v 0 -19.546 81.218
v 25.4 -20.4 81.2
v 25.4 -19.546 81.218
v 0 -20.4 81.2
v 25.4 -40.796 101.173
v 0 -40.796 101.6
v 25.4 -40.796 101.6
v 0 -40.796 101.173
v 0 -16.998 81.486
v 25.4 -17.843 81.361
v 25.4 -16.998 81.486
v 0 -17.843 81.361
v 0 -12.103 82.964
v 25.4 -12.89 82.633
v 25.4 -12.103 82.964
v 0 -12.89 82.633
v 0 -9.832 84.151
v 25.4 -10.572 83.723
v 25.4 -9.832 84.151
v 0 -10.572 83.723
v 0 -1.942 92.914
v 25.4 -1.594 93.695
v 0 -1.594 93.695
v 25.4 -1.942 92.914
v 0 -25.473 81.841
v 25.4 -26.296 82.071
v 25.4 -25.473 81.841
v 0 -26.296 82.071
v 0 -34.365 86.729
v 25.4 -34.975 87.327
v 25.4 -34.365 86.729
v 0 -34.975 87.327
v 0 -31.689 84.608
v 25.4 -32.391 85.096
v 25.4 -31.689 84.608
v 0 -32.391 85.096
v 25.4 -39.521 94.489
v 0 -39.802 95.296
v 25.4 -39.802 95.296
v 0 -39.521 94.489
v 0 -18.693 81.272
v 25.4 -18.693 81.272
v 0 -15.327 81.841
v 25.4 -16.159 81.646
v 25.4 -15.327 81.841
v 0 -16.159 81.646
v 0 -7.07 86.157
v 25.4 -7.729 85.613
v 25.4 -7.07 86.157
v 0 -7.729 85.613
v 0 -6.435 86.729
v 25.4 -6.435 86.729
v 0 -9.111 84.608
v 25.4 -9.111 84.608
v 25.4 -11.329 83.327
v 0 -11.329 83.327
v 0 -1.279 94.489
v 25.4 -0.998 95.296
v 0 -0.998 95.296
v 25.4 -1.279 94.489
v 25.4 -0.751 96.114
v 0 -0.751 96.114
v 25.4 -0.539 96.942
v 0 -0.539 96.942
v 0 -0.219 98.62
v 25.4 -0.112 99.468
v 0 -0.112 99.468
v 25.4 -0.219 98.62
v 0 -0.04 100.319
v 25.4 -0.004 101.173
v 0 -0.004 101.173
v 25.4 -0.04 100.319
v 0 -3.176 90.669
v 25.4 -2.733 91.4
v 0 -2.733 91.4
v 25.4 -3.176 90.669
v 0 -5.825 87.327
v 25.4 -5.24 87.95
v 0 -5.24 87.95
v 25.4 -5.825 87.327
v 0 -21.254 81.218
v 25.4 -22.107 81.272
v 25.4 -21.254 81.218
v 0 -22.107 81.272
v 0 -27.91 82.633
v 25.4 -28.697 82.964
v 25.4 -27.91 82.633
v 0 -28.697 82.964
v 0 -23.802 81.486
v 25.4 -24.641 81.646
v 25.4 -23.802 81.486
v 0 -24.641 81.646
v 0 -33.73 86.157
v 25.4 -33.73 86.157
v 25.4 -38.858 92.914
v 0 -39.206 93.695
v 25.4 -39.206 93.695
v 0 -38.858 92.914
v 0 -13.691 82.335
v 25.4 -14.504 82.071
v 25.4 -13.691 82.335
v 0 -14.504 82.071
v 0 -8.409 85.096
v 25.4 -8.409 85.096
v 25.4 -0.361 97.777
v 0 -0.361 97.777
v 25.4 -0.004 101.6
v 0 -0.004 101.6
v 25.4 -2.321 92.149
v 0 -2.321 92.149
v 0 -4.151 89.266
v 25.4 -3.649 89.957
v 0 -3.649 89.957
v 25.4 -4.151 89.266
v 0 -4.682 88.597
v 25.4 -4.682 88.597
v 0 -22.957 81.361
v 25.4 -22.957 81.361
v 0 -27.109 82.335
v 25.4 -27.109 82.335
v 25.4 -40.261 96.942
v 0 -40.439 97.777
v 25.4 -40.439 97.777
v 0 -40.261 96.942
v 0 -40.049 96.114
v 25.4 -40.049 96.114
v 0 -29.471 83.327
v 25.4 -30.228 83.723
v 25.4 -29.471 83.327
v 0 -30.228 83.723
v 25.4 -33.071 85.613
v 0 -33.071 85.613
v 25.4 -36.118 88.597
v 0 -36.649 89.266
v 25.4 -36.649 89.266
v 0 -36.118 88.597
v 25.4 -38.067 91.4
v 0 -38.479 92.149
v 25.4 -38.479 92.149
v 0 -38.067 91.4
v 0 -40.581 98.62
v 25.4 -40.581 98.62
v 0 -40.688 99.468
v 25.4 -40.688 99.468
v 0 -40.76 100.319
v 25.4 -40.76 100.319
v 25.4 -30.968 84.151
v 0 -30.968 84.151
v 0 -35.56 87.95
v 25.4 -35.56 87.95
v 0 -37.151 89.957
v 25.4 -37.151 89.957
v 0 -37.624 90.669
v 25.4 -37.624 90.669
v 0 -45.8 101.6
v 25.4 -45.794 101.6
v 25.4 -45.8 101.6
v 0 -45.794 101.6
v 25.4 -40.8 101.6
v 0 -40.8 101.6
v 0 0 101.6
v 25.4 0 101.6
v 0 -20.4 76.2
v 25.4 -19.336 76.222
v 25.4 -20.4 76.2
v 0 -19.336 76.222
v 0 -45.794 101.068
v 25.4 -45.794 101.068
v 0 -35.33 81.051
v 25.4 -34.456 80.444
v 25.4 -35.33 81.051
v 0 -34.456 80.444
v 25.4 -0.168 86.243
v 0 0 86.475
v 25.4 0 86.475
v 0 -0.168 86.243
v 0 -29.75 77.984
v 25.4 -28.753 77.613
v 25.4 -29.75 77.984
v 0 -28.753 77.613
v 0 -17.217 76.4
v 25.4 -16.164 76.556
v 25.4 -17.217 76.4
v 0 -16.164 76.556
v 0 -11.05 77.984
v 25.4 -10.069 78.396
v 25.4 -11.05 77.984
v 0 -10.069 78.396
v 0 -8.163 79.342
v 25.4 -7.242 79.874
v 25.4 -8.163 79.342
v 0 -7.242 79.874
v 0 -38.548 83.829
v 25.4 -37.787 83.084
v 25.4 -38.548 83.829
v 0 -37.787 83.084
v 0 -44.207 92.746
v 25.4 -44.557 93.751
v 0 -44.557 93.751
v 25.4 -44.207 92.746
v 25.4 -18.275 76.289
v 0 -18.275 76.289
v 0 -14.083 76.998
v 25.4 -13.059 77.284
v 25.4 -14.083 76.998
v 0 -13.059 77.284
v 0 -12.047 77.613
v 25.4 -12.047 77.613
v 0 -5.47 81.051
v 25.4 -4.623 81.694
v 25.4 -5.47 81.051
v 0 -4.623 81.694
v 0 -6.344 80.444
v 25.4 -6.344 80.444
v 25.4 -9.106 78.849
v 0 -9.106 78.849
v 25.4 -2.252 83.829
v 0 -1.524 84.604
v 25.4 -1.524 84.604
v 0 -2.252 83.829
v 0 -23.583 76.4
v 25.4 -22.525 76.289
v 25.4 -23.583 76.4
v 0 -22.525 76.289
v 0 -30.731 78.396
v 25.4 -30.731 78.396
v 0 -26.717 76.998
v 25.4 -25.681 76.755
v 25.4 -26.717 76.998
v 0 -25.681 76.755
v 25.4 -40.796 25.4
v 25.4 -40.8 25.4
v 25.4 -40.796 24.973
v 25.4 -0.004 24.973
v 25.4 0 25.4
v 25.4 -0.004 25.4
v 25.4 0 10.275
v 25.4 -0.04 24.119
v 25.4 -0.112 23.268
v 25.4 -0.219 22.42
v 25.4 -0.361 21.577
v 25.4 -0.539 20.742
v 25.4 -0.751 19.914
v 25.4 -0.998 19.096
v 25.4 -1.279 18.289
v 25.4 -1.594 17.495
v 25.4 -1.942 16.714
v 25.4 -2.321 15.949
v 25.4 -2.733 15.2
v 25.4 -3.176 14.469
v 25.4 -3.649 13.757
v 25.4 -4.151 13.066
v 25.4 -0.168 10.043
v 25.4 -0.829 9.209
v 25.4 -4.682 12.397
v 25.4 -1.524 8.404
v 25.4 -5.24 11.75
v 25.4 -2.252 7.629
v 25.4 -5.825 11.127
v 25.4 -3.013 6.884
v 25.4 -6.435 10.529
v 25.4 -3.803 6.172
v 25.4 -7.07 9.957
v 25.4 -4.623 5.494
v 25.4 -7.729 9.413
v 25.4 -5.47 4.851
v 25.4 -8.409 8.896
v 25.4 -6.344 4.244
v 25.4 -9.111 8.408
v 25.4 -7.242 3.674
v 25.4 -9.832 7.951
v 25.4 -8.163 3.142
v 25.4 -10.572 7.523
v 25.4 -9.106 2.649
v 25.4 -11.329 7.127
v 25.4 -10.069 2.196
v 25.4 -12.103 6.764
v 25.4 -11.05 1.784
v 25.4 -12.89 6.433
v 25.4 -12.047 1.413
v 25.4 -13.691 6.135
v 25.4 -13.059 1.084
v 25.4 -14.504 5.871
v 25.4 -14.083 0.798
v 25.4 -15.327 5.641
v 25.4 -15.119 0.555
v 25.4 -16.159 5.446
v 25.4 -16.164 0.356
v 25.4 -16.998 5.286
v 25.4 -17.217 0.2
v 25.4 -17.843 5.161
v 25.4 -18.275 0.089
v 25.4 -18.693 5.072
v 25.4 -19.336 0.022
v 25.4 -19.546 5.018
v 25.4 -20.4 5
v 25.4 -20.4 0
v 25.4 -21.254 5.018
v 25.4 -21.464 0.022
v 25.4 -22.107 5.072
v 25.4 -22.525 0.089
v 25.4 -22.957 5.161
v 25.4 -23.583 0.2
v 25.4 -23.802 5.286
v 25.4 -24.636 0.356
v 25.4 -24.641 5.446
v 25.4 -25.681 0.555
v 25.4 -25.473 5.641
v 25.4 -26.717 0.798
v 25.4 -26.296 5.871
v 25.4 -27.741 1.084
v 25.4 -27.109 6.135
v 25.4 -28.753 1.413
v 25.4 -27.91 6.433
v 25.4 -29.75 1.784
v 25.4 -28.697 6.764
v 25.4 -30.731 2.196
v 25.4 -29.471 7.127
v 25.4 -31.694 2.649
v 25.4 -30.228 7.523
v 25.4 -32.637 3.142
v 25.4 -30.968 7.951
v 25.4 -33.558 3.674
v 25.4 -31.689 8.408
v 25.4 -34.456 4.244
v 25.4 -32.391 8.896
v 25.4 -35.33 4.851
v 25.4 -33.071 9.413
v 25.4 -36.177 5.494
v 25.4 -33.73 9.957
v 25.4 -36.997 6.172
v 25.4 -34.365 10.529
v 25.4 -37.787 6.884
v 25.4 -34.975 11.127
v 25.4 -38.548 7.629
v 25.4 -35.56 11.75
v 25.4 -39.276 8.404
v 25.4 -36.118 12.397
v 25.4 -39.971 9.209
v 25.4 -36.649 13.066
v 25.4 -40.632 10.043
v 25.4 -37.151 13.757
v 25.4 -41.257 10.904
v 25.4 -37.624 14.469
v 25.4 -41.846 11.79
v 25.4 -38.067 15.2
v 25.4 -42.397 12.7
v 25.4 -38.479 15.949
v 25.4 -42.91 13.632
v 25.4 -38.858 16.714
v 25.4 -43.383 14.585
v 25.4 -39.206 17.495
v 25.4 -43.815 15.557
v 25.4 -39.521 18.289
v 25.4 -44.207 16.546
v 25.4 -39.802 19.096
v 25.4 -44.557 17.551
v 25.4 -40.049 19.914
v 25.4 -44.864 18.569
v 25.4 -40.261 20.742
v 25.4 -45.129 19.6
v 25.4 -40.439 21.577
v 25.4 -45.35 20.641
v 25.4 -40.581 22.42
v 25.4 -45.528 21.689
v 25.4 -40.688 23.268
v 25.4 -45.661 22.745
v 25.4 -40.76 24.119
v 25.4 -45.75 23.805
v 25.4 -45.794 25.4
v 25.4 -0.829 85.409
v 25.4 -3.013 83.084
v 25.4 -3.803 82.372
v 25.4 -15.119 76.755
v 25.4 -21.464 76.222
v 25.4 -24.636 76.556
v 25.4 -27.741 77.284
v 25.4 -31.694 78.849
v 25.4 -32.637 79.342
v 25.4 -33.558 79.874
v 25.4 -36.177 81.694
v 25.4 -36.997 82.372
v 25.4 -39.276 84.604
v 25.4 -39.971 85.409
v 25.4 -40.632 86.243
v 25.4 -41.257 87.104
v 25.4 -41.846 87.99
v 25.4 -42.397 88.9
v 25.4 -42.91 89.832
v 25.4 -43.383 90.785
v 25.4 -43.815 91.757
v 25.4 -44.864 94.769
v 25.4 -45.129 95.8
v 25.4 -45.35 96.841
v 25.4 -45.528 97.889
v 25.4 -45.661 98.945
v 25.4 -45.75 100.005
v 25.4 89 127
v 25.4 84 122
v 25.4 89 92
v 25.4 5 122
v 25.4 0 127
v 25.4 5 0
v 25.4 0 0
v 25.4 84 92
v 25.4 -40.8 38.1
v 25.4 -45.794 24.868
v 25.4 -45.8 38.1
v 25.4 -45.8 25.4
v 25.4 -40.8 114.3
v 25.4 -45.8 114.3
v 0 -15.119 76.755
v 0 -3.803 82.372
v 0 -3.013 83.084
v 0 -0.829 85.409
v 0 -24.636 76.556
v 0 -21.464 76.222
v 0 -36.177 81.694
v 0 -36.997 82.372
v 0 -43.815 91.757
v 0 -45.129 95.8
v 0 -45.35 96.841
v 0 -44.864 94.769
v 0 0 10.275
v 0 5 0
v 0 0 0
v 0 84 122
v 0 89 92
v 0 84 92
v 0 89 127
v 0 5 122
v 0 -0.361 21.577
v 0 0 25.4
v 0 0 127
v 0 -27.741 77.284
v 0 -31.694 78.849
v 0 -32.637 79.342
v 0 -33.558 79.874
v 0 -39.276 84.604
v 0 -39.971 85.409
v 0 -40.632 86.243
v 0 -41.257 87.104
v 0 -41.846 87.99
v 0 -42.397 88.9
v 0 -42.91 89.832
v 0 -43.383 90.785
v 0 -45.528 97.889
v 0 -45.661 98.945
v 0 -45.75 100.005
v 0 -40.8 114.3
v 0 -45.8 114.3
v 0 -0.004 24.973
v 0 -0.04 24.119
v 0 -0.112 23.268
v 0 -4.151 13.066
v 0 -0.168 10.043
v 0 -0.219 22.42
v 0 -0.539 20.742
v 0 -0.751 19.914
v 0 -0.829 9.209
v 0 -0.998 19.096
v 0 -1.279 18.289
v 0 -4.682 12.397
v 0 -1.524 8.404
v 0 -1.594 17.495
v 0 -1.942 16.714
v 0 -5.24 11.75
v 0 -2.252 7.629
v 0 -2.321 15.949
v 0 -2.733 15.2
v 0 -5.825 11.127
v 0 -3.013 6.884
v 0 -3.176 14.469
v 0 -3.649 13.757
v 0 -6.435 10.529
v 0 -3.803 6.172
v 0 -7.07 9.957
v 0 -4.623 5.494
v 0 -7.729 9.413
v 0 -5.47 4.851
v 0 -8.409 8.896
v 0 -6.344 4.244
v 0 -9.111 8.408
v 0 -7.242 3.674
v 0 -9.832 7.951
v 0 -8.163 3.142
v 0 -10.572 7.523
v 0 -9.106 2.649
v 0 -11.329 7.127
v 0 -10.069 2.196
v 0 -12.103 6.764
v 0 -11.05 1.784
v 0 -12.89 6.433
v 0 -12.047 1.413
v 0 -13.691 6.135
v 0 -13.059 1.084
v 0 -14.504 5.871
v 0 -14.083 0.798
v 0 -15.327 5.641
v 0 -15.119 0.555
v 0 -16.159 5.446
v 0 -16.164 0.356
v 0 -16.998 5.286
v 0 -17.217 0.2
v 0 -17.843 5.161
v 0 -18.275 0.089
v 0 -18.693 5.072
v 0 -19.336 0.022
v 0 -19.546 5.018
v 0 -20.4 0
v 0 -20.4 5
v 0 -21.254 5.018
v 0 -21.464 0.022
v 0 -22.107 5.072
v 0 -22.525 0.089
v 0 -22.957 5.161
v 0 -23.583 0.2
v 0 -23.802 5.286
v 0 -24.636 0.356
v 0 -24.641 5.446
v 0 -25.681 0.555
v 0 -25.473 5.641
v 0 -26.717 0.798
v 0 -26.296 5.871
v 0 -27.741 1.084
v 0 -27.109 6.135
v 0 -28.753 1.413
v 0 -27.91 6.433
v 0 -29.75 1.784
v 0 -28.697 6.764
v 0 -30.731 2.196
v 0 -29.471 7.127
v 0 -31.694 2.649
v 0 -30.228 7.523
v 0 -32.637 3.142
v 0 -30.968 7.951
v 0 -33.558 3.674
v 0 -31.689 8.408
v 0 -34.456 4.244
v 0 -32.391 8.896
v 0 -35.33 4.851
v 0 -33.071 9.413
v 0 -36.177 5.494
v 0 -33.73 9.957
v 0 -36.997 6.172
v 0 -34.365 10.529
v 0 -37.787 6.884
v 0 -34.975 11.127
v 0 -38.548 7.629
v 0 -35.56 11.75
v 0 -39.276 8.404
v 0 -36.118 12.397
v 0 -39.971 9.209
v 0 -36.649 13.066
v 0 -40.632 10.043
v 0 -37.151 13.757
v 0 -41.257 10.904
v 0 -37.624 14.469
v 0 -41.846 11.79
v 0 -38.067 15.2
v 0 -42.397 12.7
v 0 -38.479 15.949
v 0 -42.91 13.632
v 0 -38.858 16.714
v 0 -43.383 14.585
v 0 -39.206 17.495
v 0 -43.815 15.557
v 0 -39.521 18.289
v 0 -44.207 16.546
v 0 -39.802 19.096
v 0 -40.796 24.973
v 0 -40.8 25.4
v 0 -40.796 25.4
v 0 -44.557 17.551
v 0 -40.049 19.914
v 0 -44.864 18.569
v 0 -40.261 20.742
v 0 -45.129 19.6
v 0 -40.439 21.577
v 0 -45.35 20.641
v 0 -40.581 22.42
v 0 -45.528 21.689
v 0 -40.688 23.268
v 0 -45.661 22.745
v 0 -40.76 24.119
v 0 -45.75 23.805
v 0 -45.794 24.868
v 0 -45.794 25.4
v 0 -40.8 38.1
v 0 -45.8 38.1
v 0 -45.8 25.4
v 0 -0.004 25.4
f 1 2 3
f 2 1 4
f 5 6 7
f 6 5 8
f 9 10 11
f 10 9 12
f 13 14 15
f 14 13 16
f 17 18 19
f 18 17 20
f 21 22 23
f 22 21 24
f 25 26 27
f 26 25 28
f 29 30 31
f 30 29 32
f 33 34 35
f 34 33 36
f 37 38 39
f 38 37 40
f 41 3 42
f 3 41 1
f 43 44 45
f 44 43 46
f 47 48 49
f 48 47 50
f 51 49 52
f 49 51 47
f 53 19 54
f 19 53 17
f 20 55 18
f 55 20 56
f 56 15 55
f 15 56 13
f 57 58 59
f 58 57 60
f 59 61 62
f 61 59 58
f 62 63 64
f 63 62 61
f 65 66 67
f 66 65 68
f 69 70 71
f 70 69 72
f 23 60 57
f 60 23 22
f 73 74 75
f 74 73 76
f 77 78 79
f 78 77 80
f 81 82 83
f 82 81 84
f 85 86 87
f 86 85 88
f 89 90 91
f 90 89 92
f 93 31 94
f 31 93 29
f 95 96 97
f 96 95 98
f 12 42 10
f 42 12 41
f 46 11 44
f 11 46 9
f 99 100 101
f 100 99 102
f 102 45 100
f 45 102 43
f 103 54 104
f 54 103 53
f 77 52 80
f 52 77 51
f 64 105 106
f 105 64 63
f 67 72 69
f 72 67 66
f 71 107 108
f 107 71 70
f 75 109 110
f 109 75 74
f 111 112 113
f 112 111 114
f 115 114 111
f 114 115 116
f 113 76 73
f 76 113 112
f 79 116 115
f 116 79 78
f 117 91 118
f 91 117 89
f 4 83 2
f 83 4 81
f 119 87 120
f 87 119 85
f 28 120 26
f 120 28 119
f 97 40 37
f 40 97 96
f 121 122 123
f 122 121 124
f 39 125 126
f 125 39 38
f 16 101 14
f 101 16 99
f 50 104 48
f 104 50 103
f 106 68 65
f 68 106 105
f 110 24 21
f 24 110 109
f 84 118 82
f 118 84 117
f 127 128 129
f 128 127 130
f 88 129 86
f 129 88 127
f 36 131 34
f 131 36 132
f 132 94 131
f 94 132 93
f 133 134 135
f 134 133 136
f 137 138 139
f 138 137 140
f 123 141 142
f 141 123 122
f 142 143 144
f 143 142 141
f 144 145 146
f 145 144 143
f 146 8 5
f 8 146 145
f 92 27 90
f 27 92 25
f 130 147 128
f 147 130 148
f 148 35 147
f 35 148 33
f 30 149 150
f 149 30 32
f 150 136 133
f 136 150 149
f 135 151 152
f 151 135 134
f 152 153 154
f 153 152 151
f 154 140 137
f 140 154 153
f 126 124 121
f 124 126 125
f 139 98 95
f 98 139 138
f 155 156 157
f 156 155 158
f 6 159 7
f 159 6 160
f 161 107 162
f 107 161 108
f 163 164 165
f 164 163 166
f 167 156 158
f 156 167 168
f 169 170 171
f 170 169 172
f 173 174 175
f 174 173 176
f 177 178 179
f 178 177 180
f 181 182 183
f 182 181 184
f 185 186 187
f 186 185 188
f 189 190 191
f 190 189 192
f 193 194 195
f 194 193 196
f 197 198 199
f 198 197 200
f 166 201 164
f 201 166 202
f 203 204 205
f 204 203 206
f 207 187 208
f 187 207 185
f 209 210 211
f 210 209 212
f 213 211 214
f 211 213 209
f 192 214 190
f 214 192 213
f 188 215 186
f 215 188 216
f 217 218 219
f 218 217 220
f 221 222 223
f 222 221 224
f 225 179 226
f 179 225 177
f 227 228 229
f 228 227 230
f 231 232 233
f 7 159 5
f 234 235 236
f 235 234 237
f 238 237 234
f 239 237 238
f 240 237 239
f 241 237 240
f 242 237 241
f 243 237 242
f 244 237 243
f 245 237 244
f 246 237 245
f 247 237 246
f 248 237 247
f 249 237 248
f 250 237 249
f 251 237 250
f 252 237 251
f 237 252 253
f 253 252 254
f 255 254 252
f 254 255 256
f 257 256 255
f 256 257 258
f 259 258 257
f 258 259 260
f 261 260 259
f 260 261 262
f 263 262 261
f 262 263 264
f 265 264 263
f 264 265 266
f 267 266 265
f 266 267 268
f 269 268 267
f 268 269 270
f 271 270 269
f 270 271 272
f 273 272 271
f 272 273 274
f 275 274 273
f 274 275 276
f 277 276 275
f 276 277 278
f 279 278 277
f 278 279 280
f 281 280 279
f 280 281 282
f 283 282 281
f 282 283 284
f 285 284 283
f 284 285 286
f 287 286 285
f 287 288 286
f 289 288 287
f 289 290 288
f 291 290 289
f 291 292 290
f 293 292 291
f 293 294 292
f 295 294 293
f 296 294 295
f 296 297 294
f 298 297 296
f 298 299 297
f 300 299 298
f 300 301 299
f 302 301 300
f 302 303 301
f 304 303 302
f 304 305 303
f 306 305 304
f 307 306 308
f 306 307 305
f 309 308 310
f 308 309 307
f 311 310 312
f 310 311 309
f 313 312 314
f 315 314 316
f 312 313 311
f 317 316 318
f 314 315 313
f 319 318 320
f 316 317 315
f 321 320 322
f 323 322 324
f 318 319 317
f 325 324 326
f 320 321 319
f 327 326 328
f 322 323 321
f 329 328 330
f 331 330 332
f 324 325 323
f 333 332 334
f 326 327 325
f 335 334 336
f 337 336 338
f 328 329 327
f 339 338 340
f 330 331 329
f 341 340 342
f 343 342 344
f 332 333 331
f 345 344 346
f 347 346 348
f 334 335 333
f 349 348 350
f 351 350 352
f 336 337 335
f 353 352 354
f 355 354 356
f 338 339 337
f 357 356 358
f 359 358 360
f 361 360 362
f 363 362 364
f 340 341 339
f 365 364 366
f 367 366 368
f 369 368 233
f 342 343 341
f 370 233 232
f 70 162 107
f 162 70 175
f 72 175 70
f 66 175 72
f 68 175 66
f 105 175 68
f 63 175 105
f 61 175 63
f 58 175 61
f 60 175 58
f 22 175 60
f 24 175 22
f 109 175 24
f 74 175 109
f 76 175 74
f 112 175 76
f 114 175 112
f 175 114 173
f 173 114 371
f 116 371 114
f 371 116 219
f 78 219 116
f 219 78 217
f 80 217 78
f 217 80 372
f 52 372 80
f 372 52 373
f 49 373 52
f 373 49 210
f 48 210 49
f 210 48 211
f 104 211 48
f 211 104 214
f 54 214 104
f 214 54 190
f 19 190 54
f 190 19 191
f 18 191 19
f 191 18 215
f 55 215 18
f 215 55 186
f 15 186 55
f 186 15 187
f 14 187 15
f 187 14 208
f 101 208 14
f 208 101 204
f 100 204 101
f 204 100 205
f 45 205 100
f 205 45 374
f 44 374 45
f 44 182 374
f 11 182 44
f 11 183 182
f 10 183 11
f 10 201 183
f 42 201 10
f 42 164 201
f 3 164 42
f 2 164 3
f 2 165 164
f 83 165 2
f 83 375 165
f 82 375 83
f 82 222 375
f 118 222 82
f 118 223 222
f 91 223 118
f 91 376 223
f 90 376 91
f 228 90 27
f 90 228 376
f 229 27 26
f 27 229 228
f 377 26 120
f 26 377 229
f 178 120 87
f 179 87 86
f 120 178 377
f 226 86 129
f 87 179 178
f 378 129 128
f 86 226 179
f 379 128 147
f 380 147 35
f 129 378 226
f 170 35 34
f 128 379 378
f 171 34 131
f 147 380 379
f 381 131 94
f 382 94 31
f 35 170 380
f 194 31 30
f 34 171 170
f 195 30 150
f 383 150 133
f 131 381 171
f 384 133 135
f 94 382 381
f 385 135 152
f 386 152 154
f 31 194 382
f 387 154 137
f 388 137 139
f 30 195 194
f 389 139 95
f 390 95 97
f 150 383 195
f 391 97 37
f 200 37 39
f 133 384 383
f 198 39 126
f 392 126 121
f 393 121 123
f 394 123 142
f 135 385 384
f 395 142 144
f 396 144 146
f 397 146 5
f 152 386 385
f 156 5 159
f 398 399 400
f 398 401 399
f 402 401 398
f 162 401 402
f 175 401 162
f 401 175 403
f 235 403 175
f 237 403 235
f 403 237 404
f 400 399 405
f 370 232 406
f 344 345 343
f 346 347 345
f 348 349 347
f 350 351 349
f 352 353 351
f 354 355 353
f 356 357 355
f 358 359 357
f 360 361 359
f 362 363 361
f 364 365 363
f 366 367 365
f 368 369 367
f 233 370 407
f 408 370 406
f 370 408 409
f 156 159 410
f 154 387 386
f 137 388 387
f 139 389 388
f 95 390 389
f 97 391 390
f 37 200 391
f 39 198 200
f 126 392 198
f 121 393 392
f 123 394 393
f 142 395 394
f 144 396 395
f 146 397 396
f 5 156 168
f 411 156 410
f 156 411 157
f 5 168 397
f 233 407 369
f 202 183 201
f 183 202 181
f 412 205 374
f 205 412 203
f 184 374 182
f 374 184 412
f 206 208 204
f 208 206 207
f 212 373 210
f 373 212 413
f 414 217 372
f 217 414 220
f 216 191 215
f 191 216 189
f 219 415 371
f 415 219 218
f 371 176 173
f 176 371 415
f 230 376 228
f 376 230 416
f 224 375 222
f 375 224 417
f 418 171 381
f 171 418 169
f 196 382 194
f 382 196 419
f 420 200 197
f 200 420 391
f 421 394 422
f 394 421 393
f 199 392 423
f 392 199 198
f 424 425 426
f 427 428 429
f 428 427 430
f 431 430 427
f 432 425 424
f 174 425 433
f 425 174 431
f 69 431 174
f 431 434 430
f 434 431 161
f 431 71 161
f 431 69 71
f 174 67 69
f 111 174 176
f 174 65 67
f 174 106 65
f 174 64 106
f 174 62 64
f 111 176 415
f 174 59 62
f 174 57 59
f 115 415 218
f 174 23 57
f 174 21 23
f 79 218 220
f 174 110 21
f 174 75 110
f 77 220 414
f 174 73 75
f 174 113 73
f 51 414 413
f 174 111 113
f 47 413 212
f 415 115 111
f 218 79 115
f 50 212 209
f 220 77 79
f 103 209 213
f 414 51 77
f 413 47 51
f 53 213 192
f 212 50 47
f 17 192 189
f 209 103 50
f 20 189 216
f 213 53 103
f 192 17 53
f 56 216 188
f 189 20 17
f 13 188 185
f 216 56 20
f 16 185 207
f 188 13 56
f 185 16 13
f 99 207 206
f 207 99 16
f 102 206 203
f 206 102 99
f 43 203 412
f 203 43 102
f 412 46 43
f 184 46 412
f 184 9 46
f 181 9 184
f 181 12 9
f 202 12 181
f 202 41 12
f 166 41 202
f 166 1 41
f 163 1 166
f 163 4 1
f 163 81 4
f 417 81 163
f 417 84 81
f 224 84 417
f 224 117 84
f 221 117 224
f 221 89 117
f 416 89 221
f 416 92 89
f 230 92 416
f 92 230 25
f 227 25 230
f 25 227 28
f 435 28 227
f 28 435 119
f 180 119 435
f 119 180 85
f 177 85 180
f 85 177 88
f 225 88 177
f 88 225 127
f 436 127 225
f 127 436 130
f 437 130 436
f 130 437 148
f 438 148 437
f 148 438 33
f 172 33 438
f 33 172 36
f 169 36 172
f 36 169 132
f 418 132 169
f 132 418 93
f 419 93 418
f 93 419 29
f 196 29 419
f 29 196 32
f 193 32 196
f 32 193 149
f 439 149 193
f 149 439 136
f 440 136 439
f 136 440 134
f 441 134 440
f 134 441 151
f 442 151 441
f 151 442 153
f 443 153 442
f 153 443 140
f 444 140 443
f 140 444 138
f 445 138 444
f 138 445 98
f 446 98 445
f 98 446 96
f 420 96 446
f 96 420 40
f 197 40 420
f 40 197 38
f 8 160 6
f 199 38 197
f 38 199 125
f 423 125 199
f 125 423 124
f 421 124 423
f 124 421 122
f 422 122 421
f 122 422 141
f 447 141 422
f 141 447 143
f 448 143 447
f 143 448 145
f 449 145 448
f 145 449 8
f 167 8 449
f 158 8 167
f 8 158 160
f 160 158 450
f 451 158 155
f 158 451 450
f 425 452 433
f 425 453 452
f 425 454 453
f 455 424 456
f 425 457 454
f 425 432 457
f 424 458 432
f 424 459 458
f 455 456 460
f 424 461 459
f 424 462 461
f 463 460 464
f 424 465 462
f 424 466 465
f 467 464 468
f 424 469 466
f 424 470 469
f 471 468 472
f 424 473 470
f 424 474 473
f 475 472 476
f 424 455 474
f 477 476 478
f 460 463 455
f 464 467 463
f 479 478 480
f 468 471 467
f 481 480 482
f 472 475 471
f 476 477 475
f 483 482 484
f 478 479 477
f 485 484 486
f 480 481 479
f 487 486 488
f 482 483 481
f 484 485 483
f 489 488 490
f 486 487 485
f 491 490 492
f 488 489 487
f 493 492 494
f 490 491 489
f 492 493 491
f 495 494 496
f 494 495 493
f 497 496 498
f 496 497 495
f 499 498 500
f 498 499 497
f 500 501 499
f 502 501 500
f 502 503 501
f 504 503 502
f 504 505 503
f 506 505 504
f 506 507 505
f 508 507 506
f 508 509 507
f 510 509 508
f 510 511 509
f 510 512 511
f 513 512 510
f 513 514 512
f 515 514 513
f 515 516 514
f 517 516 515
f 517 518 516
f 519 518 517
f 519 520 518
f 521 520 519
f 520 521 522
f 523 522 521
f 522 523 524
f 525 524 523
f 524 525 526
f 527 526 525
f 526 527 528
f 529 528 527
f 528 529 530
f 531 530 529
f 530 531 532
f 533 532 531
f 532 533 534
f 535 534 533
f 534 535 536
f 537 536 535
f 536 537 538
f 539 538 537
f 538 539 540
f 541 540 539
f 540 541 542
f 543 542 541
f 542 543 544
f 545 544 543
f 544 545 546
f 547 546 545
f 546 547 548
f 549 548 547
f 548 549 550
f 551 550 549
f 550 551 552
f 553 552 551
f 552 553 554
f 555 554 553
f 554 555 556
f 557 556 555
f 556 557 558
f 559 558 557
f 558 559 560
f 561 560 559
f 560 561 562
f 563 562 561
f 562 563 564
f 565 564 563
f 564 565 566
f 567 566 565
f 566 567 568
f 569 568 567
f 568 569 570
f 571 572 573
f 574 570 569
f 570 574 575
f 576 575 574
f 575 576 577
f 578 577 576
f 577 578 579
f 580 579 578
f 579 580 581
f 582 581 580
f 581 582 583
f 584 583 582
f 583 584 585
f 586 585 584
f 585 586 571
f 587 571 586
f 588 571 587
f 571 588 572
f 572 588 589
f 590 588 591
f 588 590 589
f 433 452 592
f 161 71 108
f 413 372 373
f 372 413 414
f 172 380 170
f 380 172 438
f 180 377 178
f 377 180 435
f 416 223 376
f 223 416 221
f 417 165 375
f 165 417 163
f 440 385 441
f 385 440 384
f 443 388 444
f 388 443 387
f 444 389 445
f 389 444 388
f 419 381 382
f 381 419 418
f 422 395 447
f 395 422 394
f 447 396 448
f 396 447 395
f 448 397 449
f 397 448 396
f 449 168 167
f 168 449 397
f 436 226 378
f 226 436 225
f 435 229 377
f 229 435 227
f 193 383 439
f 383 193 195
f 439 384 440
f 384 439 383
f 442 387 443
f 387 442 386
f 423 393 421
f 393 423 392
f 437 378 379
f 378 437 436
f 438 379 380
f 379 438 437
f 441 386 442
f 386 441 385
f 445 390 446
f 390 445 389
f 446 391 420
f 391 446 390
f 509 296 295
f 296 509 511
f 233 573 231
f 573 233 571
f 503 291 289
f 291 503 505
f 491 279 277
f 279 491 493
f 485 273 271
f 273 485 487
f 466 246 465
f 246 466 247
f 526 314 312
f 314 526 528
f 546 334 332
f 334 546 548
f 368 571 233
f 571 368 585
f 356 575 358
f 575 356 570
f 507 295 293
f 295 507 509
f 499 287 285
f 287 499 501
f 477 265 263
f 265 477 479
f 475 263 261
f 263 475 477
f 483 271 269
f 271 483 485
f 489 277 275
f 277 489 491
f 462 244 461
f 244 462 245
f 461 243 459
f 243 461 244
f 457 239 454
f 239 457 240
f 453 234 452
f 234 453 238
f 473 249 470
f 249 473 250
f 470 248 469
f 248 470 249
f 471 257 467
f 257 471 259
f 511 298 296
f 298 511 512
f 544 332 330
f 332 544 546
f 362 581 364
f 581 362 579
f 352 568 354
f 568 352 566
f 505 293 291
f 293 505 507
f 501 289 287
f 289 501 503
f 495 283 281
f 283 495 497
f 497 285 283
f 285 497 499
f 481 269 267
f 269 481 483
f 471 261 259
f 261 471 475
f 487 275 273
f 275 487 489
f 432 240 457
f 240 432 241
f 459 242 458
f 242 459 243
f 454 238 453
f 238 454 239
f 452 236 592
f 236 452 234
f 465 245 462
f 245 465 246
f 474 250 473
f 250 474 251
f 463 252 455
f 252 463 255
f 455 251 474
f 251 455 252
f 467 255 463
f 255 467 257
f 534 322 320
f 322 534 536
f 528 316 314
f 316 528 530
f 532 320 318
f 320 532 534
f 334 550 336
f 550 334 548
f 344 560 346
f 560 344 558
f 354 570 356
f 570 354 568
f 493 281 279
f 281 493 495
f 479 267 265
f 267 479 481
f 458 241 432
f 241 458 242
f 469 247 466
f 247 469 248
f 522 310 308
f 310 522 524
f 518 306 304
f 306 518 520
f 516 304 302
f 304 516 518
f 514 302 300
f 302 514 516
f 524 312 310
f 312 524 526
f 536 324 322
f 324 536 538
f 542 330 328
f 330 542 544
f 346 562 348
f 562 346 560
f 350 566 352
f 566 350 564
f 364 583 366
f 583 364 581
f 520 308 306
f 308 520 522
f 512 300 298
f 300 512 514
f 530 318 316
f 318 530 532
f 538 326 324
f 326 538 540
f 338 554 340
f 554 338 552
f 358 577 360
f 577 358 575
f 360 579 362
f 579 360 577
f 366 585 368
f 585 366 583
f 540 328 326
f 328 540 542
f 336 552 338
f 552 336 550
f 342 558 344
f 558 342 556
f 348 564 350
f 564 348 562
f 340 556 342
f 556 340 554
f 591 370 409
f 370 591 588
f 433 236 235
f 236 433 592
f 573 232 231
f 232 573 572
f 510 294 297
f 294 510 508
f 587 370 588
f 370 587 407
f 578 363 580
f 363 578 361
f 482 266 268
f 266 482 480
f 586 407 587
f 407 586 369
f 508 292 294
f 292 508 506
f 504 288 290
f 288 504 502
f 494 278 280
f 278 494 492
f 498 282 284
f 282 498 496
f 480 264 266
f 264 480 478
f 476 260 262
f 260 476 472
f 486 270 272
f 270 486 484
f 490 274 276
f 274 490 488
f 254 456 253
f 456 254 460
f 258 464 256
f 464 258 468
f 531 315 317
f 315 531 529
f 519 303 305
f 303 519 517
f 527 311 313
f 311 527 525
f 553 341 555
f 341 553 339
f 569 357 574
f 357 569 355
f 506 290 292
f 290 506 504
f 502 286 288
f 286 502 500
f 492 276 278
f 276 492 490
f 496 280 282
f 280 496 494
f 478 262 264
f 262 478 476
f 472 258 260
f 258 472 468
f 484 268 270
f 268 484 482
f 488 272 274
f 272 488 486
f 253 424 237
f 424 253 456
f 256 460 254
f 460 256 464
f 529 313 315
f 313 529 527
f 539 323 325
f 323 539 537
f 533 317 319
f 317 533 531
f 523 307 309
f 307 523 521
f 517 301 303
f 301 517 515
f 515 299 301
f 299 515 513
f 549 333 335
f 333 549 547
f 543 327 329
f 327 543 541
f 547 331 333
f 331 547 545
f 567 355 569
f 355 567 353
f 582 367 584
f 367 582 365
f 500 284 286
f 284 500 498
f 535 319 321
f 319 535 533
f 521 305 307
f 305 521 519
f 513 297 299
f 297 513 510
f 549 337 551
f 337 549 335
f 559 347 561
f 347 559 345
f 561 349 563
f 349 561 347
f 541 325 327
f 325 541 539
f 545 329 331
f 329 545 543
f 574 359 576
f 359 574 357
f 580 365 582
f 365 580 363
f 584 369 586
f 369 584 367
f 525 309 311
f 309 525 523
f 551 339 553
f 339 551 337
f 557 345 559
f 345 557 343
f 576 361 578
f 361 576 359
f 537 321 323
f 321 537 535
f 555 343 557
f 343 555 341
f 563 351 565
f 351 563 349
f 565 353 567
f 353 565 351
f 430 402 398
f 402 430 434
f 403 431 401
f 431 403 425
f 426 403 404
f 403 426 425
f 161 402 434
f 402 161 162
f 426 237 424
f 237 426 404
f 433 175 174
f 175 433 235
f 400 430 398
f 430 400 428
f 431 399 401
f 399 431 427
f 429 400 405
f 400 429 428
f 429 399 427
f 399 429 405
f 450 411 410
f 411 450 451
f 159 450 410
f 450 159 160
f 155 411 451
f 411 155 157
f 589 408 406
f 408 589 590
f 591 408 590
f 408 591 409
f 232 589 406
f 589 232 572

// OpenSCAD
// 
// Matthew
// @mkmakare
// https://www.myminifactory.com/object/3d-print-cubicle-hook-107219
//
// Added variable comments and parameterized the back wall vertical.
//

t = 79;                 // thickness of cube wall
b = 30;                 // back side of cube wall vertical

f = 5;                  // hook body thickness, increase for strength
h = 12.7;               // hook vertical height
w = 25.4;               // hook diameter

length = 127;           // vertical height of the entire hook

smidge = 0.001;         // provide a tiny bit of overlap

union(){
//main body
translate([0,0,0])
cube([w,f,length]);
//thickness body
translate([0,0,length-f])
cube([w,t+f*2,f]);
//back support
//translate([0,(t+f*2)-f,length-2*w])
//cube([w,f,w*2]);
translate([0,(t+f*2)-f,length-b-f])     // added 'b' parameter
cube([w,f,b+f]);
    
    
//top hook
difference(){
rotate([0,90,0])
translate([-w*4,-w+f,0])
cylinder(w,w,w,$fn=150);
union(){
rotate([0,90,0])
translate([-w*4,-w+f,-smidge])          // the rotation makes z into x
cylinder(w+(2*smidge),w-f,w-f,$fn=150);
translate([-smidge,-2*w+f,w*4])
cube([w+2*smidge,w*2,w]);   
}
}
//bottom hook
difference(){
rotate([0,90,0])
translate([-w*1,-w+f,0])
cylinder(w,w,w,$fn=150);
union(){
rotate([0,90,0])
translate([-w*1,-w+f,-smidge])
cylinder(w+(2*smidge),w-f,w-f,$fn=150);
translate([-smidge,-2*w+f,w*1])
cube([w+2*smidge,w*2,w]);    
} 
}
//top hook addition
translate([0,-w*2+f,w*4])
cube([w,f,h]);
//bottom hook addition
translate([0,-w*2+f,w*1])
cube([w,f,h]);
}
